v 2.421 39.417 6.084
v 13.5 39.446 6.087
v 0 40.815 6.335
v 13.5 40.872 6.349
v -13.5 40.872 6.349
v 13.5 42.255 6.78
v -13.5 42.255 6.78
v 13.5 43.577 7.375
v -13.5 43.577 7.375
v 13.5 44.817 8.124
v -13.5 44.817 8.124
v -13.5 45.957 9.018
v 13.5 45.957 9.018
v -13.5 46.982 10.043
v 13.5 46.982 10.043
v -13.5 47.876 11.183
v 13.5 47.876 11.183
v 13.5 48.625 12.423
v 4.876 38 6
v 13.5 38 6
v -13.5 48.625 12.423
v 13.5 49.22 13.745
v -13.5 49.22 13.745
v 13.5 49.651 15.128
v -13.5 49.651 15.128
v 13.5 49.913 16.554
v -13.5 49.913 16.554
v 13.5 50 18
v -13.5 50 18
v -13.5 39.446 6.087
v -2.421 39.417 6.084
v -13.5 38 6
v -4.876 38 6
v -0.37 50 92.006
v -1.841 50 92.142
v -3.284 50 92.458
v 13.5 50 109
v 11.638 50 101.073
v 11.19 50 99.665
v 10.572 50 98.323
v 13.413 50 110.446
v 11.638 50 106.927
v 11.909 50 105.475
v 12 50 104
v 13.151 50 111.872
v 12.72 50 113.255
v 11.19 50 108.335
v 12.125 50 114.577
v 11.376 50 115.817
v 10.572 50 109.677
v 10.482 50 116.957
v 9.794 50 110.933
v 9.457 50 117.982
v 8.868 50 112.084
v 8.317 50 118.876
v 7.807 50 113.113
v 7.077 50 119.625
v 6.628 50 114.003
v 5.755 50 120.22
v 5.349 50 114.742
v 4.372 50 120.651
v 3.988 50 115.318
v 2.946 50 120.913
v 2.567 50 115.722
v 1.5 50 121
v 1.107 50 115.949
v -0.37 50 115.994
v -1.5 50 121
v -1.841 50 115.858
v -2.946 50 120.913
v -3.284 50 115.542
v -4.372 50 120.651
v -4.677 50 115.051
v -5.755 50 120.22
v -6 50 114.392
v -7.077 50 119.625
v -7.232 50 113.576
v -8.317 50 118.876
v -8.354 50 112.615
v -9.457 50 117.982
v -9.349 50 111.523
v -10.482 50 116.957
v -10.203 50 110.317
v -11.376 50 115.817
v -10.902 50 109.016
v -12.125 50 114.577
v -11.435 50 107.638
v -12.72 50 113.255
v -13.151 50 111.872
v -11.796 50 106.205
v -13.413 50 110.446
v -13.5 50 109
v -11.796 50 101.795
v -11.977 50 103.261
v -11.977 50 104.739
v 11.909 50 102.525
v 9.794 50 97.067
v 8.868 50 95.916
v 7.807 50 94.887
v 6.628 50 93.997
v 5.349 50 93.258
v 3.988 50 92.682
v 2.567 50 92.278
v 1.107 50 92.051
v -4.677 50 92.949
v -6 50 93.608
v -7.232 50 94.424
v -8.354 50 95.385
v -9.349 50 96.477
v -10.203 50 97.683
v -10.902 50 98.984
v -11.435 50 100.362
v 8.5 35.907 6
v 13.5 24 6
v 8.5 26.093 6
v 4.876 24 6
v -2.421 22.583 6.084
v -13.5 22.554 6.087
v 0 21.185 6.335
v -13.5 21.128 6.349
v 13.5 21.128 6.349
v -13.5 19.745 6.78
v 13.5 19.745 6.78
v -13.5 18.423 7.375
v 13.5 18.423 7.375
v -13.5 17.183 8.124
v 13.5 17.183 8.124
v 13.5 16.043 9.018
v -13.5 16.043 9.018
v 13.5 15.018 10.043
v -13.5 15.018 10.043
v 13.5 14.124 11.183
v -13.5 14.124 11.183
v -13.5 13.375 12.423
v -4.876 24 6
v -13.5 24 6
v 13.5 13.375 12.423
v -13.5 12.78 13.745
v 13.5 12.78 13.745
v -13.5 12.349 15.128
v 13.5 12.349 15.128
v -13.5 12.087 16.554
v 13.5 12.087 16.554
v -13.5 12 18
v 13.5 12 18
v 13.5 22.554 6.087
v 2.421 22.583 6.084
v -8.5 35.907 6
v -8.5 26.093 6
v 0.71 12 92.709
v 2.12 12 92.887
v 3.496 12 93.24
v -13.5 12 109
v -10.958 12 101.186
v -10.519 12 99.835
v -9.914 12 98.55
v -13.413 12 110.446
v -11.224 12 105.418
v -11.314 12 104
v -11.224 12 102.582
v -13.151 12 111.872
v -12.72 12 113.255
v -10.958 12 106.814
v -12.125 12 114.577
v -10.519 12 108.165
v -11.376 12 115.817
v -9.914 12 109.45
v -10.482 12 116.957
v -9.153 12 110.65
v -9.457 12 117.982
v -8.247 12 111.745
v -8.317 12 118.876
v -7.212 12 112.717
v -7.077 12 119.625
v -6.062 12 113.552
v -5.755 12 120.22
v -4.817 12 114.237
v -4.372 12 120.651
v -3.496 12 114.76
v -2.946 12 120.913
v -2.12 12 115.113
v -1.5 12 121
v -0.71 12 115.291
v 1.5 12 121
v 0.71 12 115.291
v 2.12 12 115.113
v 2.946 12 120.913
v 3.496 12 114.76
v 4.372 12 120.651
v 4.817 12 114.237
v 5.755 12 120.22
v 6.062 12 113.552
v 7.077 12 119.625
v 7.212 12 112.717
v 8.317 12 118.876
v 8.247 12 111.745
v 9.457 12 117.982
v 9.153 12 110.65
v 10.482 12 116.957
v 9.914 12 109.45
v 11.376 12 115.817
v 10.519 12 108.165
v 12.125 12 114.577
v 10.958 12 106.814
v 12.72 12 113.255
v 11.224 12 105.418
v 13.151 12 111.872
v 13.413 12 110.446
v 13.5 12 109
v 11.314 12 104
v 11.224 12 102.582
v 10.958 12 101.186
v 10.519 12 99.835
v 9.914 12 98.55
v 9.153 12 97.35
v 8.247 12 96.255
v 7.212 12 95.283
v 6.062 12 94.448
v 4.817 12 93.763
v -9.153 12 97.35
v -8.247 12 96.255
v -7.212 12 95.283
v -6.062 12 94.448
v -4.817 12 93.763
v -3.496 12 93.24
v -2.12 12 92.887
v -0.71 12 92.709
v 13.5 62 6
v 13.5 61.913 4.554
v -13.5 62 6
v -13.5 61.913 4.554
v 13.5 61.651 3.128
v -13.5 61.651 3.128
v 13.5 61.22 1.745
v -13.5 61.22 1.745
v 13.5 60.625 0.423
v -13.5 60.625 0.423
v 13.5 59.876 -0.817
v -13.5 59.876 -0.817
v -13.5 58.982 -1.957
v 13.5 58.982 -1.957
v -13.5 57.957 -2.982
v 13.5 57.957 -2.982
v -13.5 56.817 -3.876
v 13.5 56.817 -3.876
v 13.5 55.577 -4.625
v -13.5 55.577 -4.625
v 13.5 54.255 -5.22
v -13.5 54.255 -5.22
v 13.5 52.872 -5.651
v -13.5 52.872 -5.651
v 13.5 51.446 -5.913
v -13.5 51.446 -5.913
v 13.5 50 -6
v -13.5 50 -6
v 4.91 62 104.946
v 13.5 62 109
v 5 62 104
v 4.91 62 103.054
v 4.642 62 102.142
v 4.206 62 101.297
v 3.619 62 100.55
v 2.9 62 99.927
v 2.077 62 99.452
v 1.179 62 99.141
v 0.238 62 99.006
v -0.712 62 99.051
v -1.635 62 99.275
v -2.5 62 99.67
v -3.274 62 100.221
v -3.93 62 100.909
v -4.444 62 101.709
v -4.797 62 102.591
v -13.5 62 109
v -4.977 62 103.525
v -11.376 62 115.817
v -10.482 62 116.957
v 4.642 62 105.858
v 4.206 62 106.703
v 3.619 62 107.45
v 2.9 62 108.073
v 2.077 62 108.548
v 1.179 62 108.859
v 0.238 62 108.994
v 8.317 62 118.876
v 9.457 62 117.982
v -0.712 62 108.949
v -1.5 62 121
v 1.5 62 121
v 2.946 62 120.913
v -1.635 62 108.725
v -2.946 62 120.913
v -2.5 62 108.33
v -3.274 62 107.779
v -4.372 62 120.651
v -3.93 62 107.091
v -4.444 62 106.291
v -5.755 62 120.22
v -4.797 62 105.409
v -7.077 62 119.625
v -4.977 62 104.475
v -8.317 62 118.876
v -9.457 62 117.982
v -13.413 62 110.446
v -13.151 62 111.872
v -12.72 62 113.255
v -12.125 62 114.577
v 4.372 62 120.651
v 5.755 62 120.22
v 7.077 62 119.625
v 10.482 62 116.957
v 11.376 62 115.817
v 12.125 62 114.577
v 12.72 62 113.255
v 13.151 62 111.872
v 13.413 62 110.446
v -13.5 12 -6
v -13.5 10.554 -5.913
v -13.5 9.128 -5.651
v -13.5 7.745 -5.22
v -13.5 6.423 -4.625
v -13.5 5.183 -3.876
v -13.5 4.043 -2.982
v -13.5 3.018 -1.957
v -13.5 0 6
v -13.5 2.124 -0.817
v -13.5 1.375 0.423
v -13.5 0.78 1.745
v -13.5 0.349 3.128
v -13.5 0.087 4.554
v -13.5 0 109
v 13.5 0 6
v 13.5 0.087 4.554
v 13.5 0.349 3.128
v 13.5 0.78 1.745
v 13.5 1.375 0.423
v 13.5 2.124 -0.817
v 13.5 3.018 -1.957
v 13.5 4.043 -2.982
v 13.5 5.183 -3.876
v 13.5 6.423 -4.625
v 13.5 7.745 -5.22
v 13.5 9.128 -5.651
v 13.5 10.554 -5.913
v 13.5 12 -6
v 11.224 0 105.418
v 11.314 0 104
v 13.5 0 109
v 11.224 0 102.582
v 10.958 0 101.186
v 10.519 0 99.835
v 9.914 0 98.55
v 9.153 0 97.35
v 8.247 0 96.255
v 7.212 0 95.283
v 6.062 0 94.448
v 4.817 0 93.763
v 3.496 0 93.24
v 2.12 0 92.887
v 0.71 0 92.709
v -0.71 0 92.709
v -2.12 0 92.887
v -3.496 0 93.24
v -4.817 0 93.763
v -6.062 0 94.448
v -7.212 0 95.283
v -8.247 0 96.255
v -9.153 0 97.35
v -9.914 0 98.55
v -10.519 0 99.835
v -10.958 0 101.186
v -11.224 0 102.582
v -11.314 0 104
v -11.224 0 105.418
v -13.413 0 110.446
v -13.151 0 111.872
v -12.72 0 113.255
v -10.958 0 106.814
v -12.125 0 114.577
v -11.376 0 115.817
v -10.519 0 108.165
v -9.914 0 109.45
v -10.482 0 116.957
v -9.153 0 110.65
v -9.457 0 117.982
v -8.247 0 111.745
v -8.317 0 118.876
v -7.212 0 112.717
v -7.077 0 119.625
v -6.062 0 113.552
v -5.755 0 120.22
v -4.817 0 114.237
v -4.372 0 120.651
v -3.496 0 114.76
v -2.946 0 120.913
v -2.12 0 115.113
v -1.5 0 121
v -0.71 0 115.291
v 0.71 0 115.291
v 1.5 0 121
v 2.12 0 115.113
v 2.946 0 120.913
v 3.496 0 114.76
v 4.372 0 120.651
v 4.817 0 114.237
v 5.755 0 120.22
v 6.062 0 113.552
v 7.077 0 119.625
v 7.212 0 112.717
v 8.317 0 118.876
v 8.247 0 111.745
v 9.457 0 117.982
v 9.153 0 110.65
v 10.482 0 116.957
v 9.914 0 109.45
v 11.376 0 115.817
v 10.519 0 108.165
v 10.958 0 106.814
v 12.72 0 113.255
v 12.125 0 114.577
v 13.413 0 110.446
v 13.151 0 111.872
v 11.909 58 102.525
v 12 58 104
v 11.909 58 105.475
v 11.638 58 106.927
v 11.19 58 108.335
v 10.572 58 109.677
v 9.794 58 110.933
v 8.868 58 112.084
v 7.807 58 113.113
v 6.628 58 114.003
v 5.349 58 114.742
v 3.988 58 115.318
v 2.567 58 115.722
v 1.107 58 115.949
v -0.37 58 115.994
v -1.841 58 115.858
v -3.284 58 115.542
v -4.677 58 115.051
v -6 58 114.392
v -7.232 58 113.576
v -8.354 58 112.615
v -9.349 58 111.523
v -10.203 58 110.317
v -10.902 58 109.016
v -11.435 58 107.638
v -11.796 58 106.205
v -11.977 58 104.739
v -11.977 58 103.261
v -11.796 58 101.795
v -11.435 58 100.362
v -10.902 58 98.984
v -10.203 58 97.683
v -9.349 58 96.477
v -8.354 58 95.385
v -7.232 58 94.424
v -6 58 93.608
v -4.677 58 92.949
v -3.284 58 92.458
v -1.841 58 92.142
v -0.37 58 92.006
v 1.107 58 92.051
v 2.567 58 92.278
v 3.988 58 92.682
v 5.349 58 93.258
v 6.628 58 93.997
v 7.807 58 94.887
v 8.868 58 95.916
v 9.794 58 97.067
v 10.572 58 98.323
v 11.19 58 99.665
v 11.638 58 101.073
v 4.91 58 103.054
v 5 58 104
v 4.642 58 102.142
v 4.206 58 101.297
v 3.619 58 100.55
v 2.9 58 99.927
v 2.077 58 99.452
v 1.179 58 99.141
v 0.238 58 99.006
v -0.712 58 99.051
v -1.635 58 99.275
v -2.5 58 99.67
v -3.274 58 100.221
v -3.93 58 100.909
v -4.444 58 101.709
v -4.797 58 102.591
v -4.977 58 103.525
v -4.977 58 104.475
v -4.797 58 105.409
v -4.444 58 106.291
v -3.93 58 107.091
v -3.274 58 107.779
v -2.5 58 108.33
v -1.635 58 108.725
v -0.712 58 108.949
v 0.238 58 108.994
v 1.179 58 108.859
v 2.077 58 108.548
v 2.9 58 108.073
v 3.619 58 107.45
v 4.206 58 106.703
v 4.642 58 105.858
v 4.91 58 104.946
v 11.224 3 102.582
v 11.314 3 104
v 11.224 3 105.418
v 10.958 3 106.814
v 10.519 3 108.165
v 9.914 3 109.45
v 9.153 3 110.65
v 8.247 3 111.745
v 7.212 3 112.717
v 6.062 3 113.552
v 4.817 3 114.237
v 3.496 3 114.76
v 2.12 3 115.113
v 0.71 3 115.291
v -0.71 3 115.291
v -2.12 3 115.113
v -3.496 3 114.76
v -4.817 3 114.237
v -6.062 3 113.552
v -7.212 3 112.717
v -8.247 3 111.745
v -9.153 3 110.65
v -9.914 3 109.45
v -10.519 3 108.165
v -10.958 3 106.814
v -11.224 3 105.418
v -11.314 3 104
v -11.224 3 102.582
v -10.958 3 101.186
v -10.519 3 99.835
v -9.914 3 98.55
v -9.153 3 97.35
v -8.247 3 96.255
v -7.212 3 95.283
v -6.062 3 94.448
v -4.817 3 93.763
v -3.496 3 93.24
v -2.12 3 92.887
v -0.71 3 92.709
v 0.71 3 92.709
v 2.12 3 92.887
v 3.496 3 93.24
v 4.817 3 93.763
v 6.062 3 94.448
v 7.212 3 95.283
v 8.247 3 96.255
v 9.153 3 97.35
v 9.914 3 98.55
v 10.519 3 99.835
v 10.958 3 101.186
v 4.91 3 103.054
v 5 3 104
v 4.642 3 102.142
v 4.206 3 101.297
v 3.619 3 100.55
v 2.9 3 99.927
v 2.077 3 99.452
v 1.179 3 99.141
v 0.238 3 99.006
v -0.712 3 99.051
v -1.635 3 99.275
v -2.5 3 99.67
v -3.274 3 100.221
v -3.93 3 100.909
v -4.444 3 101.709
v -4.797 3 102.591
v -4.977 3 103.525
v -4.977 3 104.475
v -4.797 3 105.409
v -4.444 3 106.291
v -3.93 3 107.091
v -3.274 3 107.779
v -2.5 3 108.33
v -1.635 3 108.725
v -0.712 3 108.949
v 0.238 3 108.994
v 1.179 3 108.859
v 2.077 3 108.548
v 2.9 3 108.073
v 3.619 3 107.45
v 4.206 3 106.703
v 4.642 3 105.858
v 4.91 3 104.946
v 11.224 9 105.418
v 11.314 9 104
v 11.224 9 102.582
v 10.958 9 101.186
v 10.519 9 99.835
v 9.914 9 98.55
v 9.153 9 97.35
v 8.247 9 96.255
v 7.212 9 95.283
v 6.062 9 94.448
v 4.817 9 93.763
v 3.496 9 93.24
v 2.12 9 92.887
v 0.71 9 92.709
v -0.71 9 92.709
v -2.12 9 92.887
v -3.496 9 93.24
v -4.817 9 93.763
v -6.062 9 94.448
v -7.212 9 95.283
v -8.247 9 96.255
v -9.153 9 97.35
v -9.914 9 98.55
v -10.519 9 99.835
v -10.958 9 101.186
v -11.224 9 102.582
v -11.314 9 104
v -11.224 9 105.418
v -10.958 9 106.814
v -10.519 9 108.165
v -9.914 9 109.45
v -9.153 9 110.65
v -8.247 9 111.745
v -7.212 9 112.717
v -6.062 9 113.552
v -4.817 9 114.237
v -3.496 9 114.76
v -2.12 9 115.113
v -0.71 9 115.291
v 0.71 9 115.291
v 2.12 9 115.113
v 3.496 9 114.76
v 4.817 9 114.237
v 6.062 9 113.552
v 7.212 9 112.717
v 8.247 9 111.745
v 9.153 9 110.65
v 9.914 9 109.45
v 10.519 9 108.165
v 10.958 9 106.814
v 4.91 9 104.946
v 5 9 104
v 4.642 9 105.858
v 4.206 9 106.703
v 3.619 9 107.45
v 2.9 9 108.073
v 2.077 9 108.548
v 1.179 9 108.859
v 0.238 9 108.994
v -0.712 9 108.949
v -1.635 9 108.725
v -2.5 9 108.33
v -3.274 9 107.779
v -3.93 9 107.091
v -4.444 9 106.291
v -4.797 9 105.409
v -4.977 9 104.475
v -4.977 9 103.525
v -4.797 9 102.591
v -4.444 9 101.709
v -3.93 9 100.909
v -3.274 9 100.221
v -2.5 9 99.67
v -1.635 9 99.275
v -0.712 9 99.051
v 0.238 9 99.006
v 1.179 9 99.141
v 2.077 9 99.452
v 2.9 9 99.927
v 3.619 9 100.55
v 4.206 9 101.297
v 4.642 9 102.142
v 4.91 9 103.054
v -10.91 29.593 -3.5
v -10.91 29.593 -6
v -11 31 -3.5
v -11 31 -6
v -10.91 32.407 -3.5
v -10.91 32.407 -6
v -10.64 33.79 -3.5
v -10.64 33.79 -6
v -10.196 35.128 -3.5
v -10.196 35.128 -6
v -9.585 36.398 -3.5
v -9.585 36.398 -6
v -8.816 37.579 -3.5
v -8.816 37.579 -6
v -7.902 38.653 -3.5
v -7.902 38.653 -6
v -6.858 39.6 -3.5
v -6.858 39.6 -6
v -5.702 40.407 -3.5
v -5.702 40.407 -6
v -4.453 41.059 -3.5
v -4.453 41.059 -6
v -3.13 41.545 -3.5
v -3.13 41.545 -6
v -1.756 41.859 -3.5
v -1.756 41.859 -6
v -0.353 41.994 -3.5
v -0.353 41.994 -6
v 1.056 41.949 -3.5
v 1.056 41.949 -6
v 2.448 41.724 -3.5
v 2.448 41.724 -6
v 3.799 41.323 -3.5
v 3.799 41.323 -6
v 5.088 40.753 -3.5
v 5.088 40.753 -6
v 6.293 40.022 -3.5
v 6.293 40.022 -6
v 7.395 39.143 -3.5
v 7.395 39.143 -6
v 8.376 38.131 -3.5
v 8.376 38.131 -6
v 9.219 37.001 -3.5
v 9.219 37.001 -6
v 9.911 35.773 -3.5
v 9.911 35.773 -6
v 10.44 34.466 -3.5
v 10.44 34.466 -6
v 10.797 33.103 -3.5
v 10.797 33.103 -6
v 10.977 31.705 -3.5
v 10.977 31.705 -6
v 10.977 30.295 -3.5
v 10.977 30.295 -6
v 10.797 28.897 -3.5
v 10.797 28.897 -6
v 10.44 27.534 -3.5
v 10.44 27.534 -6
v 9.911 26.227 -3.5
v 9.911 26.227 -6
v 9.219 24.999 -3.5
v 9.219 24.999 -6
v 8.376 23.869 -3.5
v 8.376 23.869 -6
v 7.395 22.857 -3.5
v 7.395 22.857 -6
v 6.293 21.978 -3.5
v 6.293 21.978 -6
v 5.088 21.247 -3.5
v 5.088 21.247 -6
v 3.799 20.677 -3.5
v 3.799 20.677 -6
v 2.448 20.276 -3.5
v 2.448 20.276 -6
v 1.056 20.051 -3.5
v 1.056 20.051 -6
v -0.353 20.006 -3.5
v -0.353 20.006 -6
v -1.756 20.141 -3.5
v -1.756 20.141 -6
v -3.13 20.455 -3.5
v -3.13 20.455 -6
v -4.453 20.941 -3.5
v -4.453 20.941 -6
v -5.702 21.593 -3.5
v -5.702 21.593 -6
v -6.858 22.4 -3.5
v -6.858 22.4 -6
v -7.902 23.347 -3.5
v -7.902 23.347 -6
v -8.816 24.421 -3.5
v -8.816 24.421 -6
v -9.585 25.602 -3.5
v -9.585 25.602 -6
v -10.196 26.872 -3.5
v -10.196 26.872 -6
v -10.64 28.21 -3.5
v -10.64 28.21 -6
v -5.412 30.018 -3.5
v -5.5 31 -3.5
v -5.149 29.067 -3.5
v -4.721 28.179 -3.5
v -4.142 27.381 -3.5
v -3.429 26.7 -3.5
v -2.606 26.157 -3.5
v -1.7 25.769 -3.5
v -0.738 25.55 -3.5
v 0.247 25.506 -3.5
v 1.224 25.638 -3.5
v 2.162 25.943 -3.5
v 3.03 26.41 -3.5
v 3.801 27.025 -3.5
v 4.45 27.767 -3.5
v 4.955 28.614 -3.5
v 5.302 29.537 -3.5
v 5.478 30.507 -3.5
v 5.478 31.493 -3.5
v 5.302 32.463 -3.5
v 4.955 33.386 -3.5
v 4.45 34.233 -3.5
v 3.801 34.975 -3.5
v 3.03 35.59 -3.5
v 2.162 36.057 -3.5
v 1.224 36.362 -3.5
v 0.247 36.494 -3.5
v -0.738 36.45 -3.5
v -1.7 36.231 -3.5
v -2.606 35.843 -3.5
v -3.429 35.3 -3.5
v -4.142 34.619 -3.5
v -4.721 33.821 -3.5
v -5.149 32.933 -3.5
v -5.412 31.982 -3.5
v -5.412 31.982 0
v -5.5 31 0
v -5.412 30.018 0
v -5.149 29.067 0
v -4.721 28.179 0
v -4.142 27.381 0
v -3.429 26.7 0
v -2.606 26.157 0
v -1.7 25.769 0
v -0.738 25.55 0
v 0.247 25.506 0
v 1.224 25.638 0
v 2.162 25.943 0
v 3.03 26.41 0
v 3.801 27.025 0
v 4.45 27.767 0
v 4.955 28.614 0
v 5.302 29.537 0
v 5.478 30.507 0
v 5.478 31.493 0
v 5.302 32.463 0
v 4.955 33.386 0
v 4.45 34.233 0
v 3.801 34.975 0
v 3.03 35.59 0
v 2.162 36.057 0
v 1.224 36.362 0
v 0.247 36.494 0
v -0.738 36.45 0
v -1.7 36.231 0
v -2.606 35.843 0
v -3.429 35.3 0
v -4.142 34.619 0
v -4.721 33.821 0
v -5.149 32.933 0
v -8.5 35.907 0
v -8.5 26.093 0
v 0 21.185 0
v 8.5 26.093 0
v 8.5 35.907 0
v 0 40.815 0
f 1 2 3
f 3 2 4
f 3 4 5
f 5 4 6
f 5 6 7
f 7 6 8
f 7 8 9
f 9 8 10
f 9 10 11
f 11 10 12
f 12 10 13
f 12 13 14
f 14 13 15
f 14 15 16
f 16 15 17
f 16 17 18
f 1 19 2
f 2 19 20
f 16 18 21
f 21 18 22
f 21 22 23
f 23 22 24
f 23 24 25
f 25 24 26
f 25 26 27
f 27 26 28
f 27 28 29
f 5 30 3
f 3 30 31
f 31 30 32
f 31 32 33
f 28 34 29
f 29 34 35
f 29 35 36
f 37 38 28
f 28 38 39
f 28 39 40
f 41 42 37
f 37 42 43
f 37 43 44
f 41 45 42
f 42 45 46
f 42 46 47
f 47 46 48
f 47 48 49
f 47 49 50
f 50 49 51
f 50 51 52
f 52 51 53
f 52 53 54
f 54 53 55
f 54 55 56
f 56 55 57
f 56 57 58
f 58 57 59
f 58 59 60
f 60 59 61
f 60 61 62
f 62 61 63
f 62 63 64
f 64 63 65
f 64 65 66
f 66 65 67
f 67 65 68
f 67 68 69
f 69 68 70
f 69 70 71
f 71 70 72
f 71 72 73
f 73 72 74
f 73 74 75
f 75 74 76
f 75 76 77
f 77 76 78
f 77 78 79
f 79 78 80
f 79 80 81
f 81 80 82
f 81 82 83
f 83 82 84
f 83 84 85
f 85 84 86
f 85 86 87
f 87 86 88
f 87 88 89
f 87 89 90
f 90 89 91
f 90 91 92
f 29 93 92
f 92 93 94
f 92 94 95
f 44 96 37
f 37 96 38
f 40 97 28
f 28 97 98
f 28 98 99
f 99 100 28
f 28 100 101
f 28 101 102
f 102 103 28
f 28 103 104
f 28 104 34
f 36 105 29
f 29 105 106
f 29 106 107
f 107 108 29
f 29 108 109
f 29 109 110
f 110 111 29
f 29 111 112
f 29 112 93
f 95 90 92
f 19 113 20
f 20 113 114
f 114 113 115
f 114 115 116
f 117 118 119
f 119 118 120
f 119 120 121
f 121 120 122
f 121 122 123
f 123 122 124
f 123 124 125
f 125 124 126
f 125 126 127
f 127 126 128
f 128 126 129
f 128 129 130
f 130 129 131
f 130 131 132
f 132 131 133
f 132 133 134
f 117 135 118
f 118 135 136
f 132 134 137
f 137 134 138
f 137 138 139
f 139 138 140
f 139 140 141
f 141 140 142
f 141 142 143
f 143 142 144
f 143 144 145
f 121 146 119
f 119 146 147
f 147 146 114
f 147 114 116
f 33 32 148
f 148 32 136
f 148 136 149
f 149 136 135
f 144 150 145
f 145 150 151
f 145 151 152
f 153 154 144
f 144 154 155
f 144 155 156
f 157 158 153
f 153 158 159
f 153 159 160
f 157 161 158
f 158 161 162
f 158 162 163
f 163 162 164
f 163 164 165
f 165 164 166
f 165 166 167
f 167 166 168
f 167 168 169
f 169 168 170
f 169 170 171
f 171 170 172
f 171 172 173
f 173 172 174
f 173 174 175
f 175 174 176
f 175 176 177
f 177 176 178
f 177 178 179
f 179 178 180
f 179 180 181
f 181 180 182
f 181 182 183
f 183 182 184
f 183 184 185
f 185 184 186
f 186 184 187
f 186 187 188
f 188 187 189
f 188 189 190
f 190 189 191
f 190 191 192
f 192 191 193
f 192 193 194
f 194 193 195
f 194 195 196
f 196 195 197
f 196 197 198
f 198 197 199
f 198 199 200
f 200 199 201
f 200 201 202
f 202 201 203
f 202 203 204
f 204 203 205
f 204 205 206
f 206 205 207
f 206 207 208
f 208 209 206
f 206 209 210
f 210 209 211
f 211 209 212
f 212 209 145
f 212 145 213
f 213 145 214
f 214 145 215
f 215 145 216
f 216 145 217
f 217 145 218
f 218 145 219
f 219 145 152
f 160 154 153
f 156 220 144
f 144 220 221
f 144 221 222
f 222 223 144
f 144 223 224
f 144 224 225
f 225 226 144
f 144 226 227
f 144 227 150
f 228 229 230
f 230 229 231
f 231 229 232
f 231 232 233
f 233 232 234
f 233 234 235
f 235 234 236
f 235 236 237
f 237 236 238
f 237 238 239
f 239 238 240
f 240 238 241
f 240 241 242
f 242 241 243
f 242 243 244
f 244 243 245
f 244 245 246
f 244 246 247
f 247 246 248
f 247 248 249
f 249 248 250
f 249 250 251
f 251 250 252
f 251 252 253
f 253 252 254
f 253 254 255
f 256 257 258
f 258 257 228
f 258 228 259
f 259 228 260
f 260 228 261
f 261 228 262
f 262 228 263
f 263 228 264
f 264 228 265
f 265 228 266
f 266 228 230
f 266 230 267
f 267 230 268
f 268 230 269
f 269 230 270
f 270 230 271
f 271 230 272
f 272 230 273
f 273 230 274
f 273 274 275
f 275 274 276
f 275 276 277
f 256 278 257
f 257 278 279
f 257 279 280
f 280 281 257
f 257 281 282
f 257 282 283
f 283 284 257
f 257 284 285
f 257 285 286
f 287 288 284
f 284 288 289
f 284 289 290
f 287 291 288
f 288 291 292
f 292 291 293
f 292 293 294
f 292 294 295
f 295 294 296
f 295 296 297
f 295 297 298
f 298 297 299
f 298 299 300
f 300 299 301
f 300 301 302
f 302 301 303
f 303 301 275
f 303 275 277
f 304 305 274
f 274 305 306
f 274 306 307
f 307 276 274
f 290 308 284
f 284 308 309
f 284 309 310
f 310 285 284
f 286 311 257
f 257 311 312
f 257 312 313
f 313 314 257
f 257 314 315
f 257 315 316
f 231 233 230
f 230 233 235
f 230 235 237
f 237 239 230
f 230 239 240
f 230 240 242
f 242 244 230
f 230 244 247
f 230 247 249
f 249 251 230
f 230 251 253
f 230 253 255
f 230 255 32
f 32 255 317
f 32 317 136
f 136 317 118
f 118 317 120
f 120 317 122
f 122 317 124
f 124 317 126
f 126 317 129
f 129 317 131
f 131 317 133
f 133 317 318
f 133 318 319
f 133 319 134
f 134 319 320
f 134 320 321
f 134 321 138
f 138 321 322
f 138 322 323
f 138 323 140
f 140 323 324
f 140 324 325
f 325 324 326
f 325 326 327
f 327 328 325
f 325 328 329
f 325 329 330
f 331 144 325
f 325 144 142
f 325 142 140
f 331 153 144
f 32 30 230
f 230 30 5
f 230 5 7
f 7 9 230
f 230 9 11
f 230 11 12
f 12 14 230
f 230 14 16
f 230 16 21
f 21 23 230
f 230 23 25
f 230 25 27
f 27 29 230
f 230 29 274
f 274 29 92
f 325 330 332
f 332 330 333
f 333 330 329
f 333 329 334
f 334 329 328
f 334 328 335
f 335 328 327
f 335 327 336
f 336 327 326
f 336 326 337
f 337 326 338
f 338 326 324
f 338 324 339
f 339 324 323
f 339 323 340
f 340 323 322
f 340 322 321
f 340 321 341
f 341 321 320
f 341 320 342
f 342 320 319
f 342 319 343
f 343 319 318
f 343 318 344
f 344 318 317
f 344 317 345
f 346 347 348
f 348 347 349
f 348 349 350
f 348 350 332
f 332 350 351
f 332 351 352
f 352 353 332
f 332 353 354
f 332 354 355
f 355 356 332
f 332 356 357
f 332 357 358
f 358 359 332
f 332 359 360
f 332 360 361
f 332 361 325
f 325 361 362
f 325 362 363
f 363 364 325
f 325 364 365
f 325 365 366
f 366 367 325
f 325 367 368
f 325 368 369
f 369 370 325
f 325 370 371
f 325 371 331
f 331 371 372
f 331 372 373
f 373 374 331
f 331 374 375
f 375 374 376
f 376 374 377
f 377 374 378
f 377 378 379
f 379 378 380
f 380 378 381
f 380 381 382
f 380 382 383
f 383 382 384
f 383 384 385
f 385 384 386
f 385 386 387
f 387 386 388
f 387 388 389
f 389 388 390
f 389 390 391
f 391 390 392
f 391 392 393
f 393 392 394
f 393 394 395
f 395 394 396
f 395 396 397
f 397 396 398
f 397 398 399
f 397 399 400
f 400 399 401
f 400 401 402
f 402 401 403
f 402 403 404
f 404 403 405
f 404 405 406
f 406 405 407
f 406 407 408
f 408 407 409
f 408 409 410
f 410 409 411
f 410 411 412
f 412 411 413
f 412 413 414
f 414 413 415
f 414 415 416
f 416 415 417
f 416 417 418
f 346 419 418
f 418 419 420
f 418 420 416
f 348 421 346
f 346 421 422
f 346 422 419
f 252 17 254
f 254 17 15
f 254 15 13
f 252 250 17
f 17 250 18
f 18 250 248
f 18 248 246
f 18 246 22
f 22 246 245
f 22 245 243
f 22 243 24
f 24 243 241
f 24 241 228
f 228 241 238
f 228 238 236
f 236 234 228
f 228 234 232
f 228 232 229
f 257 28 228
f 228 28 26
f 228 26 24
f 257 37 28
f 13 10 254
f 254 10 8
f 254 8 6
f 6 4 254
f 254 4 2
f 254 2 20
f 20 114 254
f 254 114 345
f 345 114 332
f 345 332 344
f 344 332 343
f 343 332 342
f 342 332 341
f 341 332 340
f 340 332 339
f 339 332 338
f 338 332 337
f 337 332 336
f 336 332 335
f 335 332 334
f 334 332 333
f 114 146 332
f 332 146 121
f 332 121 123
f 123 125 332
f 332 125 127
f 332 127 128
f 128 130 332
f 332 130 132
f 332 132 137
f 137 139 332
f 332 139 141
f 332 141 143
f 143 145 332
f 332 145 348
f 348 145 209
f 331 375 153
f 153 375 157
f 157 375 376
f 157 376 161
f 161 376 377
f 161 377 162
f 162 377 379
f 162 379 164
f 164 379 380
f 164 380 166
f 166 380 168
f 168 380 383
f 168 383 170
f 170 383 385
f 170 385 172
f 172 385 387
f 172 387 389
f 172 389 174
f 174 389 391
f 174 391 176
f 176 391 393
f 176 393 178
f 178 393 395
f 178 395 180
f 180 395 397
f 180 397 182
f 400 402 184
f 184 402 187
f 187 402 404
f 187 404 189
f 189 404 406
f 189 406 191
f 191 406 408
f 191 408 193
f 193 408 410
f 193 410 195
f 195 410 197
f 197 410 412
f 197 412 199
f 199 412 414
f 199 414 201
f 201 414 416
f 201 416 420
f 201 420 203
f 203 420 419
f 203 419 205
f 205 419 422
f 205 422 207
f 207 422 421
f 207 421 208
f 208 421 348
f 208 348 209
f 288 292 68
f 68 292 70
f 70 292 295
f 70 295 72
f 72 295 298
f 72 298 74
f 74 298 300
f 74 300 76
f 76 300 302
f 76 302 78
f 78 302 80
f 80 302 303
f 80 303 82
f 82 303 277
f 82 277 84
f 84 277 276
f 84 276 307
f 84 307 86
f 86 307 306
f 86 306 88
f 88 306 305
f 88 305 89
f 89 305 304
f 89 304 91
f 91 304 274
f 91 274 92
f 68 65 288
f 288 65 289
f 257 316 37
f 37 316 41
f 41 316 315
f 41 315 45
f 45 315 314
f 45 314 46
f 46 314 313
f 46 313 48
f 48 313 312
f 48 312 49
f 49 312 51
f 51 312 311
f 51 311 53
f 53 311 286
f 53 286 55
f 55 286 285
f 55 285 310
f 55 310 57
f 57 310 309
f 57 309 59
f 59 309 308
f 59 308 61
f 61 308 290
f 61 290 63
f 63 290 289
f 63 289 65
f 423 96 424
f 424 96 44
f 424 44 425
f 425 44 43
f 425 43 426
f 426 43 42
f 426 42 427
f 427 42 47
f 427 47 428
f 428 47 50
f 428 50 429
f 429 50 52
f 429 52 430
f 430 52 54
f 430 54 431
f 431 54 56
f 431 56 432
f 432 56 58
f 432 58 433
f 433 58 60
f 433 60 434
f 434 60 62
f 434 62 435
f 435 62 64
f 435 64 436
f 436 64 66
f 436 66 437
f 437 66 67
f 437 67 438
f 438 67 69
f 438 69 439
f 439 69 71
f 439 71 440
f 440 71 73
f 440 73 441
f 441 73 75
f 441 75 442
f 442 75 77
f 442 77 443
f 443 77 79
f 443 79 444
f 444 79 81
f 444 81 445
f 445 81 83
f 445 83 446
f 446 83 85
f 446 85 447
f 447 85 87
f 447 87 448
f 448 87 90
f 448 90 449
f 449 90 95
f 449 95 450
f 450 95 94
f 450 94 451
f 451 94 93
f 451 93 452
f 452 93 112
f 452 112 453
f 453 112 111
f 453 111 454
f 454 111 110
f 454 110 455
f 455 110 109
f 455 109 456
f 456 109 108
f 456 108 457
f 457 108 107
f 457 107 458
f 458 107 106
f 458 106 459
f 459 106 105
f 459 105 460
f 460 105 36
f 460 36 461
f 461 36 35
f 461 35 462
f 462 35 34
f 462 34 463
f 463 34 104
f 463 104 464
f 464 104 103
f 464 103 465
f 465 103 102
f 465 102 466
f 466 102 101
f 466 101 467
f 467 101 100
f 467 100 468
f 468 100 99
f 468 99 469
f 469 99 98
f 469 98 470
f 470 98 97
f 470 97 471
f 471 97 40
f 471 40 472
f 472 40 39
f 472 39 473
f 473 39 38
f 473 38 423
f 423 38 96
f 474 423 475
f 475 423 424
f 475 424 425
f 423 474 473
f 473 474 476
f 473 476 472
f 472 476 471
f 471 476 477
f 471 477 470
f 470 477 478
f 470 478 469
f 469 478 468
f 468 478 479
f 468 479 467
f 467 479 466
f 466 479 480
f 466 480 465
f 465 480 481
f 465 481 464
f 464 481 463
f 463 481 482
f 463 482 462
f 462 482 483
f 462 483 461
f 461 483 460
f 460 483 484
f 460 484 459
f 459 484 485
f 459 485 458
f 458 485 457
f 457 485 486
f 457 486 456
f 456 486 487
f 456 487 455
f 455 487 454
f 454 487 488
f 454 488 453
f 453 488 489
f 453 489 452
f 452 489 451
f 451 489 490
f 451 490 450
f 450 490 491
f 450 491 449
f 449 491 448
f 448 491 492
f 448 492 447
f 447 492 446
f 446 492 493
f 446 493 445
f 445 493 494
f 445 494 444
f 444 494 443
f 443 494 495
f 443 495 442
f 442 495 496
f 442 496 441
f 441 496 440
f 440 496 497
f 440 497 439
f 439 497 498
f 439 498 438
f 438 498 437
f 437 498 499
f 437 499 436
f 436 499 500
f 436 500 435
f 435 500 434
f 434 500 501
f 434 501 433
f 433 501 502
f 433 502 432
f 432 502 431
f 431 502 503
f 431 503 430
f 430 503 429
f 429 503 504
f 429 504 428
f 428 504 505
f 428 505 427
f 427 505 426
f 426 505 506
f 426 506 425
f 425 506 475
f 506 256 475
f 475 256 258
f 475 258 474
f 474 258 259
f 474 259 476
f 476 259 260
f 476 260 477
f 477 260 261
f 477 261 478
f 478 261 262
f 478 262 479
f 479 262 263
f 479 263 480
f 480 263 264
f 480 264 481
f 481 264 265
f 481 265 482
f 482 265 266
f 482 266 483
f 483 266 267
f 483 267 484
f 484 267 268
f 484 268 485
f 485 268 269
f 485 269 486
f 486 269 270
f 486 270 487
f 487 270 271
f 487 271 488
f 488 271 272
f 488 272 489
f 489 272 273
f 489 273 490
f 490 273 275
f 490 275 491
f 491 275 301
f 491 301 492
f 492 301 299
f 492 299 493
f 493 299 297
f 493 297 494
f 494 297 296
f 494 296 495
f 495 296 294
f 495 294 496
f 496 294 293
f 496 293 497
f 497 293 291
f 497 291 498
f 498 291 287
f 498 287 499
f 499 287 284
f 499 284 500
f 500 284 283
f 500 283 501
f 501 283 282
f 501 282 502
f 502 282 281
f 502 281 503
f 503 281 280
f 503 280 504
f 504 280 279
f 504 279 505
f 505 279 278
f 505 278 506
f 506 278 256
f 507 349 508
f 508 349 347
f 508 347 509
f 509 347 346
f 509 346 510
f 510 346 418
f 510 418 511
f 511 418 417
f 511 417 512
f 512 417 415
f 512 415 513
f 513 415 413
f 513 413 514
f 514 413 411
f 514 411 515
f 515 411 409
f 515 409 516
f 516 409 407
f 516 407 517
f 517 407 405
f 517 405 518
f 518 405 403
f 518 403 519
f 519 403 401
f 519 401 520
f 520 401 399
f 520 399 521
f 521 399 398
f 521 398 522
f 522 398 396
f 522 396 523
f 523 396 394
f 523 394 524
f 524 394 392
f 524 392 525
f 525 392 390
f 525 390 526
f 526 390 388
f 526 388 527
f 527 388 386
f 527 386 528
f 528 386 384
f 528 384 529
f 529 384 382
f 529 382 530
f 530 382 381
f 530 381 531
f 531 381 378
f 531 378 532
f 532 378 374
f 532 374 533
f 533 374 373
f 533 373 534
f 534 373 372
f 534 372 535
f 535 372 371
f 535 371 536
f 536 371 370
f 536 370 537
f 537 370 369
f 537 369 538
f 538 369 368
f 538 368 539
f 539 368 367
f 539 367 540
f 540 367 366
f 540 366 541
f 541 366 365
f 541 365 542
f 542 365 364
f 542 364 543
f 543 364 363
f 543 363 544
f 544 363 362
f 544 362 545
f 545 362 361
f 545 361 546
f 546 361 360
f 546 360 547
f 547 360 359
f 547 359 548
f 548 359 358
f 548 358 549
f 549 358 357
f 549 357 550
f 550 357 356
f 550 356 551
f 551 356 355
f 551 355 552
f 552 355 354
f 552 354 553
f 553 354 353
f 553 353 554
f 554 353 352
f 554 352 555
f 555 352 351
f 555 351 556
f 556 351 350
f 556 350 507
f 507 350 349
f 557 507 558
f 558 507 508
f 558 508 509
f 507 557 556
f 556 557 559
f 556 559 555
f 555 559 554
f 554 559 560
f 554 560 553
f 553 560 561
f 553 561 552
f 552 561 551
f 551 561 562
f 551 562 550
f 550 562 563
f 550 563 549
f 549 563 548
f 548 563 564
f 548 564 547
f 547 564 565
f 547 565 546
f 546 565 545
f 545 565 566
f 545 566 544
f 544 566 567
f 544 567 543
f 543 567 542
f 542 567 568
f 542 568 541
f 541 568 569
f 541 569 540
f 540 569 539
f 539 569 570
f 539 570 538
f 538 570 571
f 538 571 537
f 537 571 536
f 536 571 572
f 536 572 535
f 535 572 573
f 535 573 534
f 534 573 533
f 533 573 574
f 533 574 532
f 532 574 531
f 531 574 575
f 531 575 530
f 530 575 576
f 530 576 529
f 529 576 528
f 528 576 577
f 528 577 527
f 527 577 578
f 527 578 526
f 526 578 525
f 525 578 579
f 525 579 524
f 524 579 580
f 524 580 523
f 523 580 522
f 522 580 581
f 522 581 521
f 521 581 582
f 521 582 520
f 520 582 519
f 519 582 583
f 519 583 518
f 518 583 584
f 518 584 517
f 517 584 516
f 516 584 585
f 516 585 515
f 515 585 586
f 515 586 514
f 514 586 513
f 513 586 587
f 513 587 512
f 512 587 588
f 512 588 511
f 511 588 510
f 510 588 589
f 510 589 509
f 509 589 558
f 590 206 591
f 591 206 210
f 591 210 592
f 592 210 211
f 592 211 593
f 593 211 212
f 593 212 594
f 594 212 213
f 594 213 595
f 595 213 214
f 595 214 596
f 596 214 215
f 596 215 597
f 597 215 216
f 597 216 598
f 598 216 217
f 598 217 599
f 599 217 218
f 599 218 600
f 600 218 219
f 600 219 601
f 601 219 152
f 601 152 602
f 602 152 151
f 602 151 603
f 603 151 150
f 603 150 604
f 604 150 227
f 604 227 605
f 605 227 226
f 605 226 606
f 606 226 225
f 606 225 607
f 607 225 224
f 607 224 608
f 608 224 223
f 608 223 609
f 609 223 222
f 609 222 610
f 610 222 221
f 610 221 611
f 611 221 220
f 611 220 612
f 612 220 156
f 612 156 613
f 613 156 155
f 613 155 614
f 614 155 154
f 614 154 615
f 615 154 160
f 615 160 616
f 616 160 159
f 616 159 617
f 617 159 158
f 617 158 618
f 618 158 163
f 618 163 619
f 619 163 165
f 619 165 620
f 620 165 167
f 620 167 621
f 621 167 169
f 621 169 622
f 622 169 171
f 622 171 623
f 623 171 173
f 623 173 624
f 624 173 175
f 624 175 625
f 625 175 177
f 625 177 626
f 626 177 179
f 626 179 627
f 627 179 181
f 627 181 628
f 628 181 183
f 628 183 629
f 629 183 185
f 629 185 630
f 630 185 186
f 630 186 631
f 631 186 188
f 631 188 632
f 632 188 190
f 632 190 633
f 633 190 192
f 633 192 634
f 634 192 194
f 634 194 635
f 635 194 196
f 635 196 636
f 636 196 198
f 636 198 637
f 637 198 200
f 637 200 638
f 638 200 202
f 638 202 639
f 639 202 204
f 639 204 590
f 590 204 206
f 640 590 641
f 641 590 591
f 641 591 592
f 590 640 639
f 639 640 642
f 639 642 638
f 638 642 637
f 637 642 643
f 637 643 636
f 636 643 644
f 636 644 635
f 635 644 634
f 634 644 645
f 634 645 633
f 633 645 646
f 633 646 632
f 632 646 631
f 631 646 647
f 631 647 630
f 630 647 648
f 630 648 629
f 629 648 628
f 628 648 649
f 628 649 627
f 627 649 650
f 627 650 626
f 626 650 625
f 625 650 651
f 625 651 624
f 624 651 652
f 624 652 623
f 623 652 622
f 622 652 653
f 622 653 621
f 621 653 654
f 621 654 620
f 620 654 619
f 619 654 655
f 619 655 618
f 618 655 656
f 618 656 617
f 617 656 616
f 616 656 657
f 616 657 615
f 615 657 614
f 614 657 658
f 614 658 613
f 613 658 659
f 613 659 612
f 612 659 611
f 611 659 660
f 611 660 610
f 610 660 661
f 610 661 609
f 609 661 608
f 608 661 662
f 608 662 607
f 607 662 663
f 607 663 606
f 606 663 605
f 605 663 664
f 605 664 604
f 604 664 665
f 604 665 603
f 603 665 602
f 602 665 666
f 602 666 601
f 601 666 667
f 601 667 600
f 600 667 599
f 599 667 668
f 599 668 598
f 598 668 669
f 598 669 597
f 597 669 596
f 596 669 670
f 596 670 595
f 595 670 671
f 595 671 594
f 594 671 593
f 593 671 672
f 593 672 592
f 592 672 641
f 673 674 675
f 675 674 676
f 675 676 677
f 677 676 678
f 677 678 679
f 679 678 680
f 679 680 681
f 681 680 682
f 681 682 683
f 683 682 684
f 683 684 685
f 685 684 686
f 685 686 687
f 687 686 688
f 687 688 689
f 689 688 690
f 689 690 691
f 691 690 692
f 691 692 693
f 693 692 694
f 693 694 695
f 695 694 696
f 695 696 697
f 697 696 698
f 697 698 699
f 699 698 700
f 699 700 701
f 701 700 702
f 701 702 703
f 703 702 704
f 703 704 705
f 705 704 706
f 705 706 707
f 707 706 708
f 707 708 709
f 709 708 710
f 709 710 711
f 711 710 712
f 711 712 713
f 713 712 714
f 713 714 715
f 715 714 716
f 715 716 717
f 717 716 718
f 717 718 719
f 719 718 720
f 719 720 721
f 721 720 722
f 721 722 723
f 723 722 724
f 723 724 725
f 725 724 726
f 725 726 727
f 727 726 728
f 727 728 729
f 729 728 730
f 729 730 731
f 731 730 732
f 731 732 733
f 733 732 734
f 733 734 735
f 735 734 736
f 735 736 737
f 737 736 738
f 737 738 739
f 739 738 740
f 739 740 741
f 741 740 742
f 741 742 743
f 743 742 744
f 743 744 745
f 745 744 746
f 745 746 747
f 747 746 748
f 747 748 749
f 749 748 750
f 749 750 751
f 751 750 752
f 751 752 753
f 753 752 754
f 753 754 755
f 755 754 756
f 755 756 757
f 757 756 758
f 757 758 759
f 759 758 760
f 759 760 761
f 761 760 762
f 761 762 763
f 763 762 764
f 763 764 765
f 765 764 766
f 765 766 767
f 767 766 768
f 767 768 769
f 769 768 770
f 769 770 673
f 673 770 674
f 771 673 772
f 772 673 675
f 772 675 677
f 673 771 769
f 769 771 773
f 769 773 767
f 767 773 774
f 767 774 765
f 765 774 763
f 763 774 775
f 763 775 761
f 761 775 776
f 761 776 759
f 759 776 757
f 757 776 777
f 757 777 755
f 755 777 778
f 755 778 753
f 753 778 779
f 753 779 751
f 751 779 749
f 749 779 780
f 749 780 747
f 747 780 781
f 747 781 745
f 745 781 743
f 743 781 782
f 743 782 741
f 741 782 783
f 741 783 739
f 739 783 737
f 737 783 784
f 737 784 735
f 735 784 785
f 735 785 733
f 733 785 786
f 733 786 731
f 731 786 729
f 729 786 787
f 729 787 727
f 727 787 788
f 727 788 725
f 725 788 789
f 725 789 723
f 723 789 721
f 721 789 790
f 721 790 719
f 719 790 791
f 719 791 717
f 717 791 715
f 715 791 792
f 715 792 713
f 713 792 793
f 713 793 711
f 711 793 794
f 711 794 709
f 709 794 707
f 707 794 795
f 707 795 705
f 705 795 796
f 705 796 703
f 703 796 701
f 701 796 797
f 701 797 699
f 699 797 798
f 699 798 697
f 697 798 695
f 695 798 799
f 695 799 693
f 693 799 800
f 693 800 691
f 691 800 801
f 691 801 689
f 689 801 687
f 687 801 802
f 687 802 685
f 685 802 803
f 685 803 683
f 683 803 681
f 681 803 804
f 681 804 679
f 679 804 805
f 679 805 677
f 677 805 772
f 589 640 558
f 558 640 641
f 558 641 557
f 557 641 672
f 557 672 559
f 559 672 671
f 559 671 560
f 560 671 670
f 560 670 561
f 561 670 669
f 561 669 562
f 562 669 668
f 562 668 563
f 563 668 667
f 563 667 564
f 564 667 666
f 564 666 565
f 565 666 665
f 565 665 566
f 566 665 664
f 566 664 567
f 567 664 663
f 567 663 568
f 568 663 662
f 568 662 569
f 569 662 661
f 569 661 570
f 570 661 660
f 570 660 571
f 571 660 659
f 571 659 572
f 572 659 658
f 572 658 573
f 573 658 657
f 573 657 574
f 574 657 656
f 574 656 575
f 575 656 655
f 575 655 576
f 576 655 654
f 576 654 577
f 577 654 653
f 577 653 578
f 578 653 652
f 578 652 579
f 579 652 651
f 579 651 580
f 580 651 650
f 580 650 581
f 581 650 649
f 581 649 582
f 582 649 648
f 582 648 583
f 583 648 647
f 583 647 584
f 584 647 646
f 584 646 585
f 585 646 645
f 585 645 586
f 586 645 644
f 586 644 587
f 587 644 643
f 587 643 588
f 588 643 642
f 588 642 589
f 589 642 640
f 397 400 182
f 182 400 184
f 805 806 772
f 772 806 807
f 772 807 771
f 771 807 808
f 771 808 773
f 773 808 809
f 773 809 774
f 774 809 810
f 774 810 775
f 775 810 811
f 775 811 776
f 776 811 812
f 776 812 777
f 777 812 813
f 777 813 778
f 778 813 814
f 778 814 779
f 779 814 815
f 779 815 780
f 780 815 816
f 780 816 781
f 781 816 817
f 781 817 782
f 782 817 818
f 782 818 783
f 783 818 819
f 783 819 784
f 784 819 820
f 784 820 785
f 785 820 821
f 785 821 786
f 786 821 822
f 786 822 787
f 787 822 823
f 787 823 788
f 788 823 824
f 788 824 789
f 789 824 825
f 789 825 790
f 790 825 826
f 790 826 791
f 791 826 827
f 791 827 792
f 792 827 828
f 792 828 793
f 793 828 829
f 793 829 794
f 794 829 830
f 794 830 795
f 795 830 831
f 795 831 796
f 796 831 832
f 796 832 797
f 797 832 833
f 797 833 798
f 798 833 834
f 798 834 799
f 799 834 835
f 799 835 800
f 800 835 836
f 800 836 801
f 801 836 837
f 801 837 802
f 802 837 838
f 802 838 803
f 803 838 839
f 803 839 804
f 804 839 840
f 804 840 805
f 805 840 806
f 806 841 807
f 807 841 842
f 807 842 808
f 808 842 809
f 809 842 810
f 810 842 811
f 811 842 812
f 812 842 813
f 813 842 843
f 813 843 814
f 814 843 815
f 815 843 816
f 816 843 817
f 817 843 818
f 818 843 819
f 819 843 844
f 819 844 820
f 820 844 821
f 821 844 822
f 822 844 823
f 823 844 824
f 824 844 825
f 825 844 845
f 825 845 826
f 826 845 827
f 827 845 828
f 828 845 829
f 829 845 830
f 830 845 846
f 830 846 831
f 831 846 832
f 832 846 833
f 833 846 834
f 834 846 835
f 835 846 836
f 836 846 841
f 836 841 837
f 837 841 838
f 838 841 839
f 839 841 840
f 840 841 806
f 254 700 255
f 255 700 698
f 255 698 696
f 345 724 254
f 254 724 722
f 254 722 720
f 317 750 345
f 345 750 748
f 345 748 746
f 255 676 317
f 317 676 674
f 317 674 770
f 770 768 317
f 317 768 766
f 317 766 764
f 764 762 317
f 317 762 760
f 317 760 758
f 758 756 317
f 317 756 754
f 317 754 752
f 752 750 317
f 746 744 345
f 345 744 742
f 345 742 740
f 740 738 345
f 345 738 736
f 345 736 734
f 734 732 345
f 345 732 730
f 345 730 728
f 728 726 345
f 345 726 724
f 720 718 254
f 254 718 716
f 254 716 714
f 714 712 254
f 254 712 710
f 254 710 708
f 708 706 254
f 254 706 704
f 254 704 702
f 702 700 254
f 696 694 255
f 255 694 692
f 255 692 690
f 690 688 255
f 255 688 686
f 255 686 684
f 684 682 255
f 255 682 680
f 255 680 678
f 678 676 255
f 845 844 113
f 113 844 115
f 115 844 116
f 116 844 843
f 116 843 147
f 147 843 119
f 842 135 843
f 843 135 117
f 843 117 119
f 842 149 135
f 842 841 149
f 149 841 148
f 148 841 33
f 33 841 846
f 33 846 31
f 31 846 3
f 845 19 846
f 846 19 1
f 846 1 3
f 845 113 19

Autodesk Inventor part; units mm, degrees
ref_plane "YZ Plane" through (0, 0, 0) normal (1, 0, 0) x (0, 1, 0)
ref_plane "XZ Plane" through (0, 0, 0) normal (0, 1, 0) x (-1, 0, 0)
ref_plane "XY Plane" through (0, 0, 0) normal (0, 0, 1) x (1, 0, 0)
sketch "Boceto1" plane through (0, 0, 0) normal (0, 0, 1) x (1, 0, 0)
  line L0 (-13.5, 62) -> (13.5, 62)
  line L1 (13.5, 62) -> (13.5, 0)
  line L2 (13.5, 0) -> (-13.5, 0)
  line L3 (-13.5, 0) -> (-13.5, 62)
  line L4 (0, 0) -> (0, 62) construction
  line L5 (0, 40.815) -> (8.5, 35.9075)
  line L6 (8.5, 35.9075) -> (8.5, 26.0925)
  line L7 (8.5, 26.0925) -> (0, 21.185)
  line L8 (0, 21.185) -> (-8.5, 26.0925)
  line L9 (-8.5, 26.0925) -> (-8.5, 35.9075)
  line L10 (-8.5, 35.9075) -> (0, 40.815)
  line L11 (-8.5, 35.9075) -> (-13.5, 35.9075) construction
  line L12 (8.5, 35.9075) -> (13.5, 35.9075) construction
  point P0 (0, 31)
  dimension "d20" = 17
  dimension "d21" = 5
  dimension "d22" = 27
  dimension "d23" = 62
extrude "Extrusión1" add sketch "Boceto1" along normal blind 6
sketch "Boceto2" plane through (0, 0, 0) normal (0, 0, -1) x (-1, 0, 0)
  line L0 (-8.5, 26.0925) -> (-8.5, 35.9075) projected
  line L1 (-8.5, 35.9075) -> (0, 40.815) projected
  line L2 (0, 40.815) -> (8.5, 35.9075) projected
  line L3 (8.5, 35.9075) -> (8.5, 26.0925) projected
  line L4 (8.5, 26.0925) -> (0, 21.185) projected
  line L5 (0, 21.185) -> (-8.5, 26.0925) projected
  line L6 (13.5, 62) -> (-13.5, 62) projected
  line L7 (-13.5, 62) -> (-13.5, 0) projected
  line L8 (-13.5, 0) -> (13.5, 0) projected
  line L9 (13.5, 0) -> (13.5, 62) projected
  point P0 (0, 0)
extrude "Extrusión2" add sketch "Boceto2" along normal blind 6 contours L0 L1 L2 L3 L4 L5 | L9 L8 L7 L6
sketch "Boceto3" plane through (0, 0, -6) normal (0, 0, -1) x (-1, 0, 0)
  line L0 (0, 0) -> (0, 62) construction
  line L1 (-13.5, 62) -> (13.5, 62) projected
  circle A0 centre (0, 31) radius 5.5
  dimension "d18" = 11
extrude "Extrusión3" cut sketch "Boceto3" against normal up to next
sketch "Boceto5" plane through (0, 0, 6) normal (0, 0, 1) x (1, 0, 0)
  line L0 (-13.5, 0) -> (-13.5, 62) projected
  line L1 (13.5, 62) -> (13.5, 0) projected
  line L2 (-13.5, 0) -> (13.5, 0)
  line L3 (13.5, 0) -> (13.5, 12)
  line L4 (13.5, 12) -> (-13.5, 12)
  line L5 (-13.5, 12) -> (-13.5, 0)
  line L6 (13.5, 62) -> (-13.5, 62) projected
  line L7 (-13.5, 62) -> (13.5, 62)
  line L8 (13.5, 62) -> (13.5, 50)
  line L9 (13.5, 50) -> (-13.5, 50)
  line L10 (-13.5, 50) -> (-13.5, 62)
  line L11 (-17.3027, 31) -> (12.0796, 31) construction
  line L12 (-8.5, 26.0925) -> (-8.5, 35.9075) projected
  point P0 (0, 0)
  point P1 (-8.5, 31)
  dimension "d24" = 12
extrude "Extrusión4" add sketch "Boceto5" along normal blind 115 contours L0 L4 L1 L2 | L0 L6 L1 L9
sketch "Boceto9" plane through (-13.5, 0, -6) normal (0, -1, 0) x (1, 0, 0)
  circle A0 centre (13.5, 110) radius 5
  line L0 (0, 127) -> (27, 127) projected
  line L1 (13.5, 110) -> (13.5, 115)
  line L2 (13.5, 115) -> (13.5, 127)
  line L3 (0, 127) -> (27, 127) projected
  point P0 (13.5, 6)
  dimension "d25" = 10
  dimension "d32" = 12
extrude "Extrusión8" cut sketch "Boceto9" against normal up to surface (12 mm away)
sketch "Boceto10" plane through (0, 0, -6) normal (0, 0, -1) x (-1, 0, 0)
  circle A0 centre (0, 31) radius 11
  circle A1 centre (0, 31) radius 5.5 projected
  point P0 (0, 0)
  dimension "d29" = 22
extrude "Extrusión9" cut sketch "Boceto10" against normal blind 2.5
sketch "Boceto11" plane through (-13.5, 12, 6) normal (0, 1, 0) x (1, 0, 0)
  line L0 (21.5, -106) -> (5.5, -106) construction
  line L1 (5.5, -106) -> (5.5, -90) construction
  line L2 (5.5, -90) -> (21.5, -90) construction
  line L3 (21.5, -90) -> (21.5, -106) construction
  line L4 (5.5, -106) -> (21.5, -90) construction
  circle A0 centre (13.5, -98) radius 8 construction
  circle A1 centre (13.5, -98) radius 11.3137
  line L5 (27, 0) -> (27, -115) projected
  circle A2 centre (13.5, -98) radius 5 projected
  point P0 (13.5, 6)
  dimension "d45" = 16
extrude "Extrusión10" cut sketch "Boceto11" against normal blind 3 contours A1 | A2
sketch "Boceto12" plane through (-13.5, 0, -6) normal (0, -1, 0) x (1, 0, 0)
  circle A0 centre (13.5, 110) radius 11.3137 projected
  line L0 (0, 127) -> (0, 0) projected
  point P0 (13.5, 6)
extrude "Extrusión11" cut sketch "Boceto12" against normal blind 3
sketch "Boceto14" plane through (-13.5, 62, -6) normal (0, 1, 0) x (1, 0, 0)
  circle A0 centre (13.5, -110) radius 5 projected
  circle A1 centre (13.5, -110) radius 5
  point P0 (13.5, -6)
  dimension "d38" = 10
extrude "Extrusión12" cut sketch "Boceto14" against normal up to next
sketch "Boceto15" plane through (-13.5, 50, 6) normal (0, -1, 0) x (1, 0, 0)
  circle A0 centre (13.5, 98) radius 5 projected
  circle A1 centre (13.5, 98) radius 12
  point P0 (13.5, -6)
  dimension "d41" = 24
extrude "Extrusión13" cut sketch "Boceto15" against normal blind 8
fillet "Empalme4" radius 12 4 edges at (13.5, 56, 121) (-13.5, 56, 121) (13.5, 6, 121) (-13.5, 6, 121)
fillet "Empalme5" radius 12 2 edges at (0, 0, -6) (0, 62, -6)
fillet "Empalme6" radius 12 2 edges at (0, 12, 6) (0, 50, 6)
